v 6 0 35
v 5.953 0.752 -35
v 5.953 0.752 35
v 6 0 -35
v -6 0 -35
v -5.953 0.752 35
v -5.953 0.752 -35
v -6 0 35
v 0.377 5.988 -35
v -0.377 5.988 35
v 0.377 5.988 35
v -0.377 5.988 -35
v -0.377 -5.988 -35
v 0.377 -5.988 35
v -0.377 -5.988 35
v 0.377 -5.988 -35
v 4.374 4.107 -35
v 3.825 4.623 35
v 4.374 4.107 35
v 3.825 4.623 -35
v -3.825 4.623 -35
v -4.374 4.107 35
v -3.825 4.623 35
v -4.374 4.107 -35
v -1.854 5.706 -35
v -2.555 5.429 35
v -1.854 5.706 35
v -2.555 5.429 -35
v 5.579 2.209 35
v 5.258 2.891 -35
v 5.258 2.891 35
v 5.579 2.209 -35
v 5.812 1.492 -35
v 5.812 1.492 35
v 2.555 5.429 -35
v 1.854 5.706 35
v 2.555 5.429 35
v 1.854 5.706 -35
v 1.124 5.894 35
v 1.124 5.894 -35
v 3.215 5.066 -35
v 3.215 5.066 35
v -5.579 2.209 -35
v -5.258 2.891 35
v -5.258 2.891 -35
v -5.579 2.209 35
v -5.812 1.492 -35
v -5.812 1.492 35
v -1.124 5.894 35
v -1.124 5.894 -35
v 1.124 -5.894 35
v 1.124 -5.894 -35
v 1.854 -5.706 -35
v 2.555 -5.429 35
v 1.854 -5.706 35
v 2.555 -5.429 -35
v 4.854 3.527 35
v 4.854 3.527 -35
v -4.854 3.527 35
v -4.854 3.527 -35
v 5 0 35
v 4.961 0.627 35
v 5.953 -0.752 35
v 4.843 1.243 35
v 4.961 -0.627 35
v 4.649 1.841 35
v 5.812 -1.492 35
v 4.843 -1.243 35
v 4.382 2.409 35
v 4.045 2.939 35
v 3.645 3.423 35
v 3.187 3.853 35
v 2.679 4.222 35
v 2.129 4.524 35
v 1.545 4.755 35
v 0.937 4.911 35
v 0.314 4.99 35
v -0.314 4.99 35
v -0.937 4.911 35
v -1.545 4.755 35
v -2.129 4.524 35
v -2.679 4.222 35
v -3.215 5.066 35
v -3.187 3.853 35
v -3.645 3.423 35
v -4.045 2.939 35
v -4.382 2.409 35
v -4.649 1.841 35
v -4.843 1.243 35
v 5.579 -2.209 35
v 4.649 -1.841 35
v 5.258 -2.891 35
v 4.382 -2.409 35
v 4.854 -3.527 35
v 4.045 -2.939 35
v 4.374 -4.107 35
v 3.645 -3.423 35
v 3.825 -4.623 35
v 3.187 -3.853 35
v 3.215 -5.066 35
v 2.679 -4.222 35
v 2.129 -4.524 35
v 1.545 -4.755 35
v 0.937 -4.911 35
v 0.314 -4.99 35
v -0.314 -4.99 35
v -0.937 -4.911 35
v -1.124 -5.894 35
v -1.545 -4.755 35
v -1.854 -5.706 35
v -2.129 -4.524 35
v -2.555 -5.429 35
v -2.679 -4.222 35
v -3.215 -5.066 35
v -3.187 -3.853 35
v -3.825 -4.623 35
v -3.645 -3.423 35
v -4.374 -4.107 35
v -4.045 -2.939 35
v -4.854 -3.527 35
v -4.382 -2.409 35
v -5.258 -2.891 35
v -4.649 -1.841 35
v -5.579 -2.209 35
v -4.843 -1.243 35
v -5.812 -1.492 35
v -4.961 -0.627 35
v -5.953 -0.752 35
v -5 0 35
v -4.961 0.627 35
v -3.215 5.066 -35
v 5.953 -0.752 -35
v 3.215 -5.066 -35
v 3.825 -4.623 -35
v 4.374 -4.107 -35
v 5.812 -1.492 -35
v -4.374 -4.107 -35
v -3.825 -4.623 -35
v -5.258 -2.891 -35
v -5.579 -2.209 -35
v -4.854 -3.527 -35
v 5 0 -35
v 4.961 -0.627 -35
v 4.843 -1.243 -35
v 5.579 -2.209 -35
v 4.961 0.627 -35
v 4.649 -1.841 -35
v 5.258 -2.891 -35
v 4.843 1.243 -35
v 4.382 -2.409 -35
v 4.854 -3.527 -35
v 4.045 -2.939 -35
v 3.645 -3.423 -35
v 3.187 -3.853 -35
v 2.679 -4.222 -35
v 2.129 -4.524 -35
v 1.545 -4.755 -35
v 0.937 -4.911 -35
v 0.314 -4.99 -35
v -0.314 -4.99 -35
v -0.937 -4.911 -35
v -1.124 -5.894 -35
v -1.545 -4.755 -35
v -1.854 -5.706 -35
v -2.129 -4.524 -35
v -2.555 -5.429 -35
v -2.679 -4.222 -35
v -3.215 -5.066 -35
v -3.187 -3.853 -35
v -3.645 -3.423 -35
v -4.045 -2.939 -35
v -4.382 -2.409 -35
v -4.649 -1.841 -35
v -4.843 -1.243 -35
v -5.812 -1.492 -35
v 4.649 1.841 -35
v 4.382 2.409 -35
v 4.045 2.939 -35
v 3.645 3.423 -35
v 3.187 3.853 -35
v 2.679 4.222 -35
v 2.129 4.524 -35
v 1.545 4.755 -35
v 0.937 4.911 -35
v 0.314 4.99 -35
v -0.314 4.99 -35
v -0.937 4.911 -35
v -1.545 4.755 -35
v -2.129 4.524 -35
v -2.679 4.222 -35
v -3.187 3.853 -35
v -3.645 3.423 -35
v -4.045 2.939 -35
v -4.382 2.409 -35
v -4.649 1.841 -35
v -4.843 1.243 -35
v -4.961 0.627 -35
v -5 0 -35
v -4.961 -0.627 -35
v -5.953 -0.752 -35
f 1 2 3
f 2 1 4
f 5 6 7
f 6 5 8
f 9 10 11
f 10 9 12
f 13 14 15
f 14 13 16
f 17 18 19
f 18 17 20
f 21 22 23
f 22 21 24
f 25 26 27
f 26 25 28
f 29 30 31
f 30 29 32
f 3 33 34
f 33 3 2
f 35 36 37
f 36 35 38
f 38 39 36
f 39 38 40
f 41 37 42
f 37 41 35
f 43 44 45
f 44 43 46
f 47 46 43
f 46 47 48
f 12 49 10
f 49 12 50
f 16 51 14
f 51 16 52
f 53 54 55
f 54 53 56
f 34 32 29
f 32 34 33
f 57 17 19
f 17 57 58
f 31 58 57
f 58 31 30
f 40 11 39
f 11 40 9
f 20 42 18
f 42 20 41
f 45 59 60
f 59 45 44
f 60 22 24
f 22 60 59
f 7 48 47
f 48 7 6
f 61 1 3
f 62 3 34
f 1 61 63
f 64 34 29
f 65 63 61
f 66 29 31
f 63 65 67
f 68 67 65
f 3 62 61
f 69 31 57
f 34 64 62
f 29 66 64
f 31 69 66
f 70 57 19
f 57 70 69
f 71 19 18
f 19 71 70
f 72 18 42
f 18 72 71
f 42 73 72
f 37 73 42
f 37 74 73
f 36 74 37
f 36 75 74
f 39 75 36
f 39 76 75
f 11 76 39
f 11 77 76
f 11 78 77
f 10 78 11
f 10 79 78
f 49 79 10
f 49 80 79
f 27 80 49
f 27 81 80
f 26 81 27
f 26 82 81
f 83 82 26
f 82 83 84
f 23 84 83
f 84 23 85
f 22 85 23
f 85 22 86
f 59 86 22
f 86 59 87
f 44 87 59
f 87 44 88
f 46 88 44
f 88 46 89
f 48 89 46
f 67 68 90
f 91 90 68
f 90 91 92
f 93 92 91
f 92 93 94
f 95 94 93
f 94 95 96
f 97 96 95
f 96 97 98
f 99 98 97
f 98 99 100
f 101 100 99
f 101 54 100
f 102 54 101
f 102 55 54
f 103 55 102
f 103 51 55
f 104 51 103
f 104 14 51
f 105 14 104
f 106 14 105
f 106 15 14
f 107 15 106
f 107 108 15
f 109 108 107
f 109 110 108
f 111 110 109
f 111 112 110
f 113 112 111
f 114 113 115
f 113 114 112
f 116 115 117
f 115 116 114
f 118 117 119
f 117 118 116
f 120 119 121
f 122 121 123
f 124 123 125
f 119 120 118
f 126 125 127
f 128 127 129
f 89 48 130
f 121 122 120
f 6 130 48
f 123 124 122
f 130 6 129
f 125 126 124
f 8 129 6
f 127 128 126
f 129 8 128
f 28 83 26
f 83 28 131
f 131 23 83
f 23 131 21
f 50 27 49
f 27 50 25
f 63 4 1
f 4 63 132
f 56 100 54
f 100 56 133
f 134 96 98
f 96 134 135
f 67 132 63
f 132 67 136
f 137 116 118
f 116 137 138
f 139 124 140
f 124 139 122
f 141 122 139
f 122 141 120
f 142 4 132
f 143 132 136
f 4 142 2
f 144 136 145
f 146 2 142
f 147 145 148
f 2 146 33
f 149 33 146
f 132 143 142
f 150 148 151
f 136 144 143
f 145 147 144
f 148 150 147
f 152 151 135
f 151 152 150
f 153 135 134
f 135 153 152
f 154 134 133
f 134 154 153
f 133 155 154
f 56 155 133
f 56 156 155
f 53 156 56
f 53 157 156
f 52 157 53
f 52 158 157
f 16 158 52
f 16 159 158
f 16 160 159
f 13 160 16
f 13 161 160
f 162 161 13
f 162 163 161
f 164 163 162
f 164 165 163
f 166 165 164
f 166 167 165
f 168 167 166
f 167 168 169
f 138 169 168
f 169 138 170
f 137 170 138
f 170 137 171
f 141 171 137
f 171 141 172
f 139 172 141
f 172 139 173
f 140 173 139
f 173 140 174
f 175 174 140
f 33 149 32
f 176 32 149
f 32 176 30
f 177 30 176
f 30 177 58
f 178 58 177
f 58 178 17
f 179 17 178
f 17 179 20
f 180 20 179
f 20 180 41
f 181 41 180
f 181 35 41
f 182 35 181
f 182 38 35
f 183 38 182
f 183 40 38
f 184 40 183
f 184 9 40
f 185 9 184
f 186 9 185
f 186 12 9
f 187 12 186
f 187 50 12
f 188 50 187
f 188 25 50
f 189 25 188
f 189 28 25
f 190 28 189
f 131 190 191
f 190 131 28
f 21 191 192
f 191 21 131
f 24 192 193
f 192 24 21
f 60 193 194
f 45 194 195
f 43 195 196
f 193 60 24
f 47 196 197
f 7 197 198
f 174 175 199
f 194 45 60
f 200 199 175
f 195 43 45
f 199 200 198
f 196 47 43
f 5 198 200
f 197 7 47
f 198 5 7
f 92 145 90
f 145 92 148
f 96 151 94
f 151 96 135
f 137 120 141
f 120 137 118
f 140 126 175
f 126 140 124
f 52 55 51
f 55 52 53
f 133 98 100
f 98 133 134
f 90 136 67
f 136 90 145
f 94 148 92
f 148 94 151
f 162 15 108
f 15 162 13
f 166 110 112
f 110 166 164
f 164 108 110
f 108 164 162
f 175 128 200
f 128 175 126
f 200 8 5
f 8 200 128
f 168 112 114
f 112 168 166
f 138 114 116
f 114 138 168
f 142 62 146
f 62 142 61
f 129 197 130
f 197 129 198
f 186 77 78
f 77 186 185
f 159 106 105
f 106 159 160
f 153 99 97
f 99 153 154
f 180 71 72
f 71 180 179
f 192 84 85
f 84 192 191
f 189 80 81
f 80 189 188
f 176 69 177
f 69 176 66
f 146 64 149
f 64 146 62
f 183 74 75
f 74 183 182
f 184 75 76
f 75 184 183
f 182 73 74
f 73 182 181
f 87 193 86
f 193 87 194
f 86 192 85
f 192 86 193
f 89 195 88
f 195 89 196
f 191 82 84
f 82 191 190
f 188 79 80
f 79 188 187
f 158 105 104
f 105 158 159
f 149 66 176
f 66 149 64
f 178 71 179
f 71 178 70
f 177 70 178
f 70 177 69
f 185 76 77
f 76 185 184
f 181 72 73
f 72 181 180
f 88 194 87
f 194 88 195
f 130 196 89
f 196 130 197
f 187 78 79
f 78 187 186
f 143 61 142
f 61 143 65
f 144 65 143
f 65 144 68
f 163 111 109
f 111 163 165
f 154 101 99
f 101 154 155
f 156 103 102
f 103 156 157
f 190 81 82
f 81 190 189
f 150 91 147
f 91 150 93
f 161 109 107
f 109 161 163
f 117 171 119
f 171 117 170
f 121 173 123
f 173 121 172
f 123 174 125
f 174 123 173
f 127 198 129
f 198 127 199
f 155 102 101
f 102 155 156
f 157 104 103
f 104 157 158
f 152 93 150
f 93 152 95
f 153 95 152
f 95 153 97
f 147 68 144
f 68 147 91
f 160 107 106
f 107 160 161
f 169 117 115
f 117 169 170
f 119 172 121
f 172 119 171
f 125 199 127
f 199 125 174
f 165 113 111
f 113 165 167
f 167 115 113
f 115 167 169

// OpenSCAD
$fn = 50;


difference() {
	union() {
		translate(v = [0, 0, -35.0000000000]) {
			cylinder(h = 70, r = 6.0000000000);
		}
	}
	union() {
		translate(v = [0, 0, -100.0000000000]) {
			cylinder(h = 200, r = 5);
		}
	}
}
